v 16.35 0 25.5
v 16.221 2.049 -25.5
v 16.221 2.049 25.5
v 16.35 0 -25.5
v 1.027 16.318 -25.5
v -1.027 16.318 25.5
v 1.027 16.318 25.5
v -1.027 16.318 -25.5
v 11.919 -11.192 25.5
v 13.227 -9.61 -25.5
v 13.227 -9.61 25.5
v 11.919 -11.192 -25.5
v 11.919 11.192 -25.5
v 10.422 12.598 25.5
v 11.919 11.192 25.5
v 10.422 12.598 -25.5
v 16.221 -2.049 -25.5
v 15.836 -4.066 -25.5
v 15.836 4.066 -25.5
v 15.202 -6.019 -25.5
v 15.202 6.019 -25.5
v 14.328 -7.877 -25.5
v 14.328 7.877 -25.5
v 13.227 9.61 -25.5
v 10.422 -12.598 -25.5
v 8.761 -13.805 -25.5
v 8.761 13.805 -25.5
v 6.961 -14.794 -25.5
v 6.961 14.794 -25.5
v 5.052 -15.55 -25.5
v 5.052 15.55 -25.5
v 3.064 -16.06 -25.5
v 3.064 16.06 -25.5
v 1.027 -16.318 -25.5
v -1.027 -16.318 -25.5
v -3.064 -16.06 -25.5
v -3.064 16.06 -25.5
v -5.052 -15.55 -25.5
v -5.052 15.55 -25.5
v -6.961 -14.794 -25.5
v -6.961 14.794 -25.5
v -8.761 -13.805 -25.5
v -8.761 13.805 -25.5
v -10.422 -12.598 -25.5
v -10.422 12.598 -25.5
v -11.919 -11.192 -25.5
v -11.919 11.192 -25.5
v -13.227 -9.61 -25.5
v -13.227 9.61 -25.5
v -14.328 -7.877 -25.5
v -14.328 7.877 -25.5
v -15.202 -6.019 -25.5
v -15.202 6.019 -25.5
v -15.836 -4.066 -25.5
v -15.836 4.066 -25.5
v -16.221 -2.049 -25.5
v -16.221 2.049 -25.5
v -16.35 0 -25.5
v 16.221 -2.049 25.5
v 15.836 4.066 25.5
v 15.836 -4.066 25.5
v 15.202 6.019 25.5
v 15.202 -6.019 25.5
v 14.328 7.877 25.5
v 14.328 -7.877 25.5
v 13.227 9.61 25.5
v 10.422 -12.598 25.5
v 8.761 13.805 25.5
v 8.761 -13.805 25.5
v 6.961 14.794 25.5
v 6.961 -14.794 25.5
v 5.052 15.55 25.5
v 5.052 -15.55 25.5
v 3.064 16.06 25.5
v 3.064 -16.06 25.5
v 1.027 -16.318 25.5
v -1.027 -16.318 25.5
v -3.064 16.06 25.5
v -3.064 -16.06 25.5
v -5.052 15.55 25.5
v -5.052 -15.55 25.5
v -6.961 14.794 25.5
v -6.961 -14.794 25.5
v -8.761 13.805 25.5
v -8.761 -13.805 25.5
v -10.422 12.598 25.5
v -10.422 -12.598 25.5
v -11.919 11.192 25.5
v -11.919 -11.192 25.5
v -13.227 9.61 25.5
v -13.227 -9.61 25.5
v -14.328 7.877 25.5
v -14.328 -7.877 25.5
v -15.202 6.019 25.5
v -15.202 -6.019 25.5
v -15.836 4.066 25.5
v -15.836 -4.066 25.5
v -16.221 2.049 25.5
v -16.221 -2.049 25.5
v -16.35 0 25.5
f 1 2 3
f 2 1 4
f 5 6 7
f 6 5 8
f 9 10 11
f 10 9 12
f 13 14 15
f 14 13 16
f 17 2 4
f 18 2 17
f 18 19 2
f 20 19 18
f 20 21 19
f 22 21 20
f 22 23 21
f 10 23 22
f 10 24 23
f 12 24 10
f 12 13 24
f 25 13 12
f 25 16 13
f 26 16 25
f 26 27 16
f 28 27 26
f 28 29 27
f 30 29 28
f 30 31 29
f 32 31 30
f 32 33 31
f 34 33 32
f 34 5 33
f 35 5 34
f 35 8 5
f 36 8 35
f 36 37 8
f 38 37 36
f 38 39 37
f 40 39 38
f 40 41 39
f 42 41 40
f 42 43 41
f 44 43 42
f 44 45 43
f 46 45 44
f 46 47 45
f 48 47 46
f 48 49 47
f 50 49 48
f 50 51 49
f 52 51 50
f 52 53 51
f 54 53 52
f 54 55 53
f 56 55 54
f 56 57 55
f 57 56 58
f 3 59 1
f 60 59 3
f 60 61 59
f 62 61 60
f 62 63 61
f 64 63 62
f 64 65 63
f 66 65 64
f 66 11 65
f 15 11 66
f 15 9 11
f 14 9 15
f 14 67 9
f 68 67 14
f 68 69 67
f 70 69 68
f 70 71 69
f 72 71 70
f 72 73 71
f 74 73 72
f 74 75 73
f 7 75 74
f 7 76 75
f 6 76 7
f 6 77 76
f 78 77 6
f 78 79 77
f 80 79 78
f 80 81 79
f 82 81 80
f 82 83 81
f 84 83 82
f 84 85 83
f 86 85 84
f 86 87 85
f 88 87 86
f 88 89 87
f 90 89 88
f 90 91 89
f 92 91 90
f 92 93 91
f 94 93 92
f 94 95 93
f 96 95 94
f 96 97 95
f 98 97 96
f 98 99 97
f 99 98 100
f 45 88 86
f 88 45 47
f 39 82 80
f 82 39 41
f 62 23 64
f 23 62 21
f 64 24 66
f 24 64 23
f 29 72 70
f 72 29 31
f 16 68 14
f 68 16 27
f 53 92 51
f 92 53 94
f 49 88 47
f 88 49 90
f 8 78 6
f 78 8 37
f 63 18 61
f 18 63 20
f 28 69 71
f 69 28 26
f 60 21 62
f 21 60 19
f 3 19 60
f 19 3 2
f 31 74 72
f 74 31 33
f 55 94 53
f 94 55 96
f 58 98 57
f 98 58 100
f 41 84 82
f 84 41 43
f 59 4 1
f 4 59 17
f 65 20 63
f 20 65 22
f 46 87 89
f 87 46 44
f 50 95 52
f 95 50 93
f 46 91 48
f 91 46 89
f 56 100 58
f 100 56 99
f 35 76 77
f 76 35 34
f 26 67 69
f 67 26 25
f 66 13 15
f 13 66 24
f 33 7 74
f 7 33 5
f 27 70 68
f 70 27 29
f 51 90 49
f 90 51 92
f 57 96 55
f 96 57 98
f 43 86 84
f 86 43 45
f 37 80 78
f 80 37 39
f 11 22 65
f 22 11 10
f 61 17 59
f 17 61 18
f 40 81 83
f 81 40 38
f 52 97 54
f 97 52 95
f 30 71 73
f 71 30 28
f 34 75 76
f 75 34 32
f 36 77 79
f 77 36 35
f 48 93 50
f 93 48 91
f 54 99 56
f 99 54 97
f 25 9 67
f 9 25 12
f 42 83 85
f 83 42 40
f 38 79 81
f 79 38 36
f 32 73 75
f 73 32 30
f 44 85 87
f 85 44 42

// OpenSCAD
$fn = 50;


difference() {
	union() {
		translate(v = [0, 0, -25.5000000000]) {
			cylinder(h = 51, r = 16.3500000000);
		}
	}
	union() {
		translate(v = [0, 0, -100.0000000000]) {
			cylinder(h = 200, r = 0);
		}
	}
}
